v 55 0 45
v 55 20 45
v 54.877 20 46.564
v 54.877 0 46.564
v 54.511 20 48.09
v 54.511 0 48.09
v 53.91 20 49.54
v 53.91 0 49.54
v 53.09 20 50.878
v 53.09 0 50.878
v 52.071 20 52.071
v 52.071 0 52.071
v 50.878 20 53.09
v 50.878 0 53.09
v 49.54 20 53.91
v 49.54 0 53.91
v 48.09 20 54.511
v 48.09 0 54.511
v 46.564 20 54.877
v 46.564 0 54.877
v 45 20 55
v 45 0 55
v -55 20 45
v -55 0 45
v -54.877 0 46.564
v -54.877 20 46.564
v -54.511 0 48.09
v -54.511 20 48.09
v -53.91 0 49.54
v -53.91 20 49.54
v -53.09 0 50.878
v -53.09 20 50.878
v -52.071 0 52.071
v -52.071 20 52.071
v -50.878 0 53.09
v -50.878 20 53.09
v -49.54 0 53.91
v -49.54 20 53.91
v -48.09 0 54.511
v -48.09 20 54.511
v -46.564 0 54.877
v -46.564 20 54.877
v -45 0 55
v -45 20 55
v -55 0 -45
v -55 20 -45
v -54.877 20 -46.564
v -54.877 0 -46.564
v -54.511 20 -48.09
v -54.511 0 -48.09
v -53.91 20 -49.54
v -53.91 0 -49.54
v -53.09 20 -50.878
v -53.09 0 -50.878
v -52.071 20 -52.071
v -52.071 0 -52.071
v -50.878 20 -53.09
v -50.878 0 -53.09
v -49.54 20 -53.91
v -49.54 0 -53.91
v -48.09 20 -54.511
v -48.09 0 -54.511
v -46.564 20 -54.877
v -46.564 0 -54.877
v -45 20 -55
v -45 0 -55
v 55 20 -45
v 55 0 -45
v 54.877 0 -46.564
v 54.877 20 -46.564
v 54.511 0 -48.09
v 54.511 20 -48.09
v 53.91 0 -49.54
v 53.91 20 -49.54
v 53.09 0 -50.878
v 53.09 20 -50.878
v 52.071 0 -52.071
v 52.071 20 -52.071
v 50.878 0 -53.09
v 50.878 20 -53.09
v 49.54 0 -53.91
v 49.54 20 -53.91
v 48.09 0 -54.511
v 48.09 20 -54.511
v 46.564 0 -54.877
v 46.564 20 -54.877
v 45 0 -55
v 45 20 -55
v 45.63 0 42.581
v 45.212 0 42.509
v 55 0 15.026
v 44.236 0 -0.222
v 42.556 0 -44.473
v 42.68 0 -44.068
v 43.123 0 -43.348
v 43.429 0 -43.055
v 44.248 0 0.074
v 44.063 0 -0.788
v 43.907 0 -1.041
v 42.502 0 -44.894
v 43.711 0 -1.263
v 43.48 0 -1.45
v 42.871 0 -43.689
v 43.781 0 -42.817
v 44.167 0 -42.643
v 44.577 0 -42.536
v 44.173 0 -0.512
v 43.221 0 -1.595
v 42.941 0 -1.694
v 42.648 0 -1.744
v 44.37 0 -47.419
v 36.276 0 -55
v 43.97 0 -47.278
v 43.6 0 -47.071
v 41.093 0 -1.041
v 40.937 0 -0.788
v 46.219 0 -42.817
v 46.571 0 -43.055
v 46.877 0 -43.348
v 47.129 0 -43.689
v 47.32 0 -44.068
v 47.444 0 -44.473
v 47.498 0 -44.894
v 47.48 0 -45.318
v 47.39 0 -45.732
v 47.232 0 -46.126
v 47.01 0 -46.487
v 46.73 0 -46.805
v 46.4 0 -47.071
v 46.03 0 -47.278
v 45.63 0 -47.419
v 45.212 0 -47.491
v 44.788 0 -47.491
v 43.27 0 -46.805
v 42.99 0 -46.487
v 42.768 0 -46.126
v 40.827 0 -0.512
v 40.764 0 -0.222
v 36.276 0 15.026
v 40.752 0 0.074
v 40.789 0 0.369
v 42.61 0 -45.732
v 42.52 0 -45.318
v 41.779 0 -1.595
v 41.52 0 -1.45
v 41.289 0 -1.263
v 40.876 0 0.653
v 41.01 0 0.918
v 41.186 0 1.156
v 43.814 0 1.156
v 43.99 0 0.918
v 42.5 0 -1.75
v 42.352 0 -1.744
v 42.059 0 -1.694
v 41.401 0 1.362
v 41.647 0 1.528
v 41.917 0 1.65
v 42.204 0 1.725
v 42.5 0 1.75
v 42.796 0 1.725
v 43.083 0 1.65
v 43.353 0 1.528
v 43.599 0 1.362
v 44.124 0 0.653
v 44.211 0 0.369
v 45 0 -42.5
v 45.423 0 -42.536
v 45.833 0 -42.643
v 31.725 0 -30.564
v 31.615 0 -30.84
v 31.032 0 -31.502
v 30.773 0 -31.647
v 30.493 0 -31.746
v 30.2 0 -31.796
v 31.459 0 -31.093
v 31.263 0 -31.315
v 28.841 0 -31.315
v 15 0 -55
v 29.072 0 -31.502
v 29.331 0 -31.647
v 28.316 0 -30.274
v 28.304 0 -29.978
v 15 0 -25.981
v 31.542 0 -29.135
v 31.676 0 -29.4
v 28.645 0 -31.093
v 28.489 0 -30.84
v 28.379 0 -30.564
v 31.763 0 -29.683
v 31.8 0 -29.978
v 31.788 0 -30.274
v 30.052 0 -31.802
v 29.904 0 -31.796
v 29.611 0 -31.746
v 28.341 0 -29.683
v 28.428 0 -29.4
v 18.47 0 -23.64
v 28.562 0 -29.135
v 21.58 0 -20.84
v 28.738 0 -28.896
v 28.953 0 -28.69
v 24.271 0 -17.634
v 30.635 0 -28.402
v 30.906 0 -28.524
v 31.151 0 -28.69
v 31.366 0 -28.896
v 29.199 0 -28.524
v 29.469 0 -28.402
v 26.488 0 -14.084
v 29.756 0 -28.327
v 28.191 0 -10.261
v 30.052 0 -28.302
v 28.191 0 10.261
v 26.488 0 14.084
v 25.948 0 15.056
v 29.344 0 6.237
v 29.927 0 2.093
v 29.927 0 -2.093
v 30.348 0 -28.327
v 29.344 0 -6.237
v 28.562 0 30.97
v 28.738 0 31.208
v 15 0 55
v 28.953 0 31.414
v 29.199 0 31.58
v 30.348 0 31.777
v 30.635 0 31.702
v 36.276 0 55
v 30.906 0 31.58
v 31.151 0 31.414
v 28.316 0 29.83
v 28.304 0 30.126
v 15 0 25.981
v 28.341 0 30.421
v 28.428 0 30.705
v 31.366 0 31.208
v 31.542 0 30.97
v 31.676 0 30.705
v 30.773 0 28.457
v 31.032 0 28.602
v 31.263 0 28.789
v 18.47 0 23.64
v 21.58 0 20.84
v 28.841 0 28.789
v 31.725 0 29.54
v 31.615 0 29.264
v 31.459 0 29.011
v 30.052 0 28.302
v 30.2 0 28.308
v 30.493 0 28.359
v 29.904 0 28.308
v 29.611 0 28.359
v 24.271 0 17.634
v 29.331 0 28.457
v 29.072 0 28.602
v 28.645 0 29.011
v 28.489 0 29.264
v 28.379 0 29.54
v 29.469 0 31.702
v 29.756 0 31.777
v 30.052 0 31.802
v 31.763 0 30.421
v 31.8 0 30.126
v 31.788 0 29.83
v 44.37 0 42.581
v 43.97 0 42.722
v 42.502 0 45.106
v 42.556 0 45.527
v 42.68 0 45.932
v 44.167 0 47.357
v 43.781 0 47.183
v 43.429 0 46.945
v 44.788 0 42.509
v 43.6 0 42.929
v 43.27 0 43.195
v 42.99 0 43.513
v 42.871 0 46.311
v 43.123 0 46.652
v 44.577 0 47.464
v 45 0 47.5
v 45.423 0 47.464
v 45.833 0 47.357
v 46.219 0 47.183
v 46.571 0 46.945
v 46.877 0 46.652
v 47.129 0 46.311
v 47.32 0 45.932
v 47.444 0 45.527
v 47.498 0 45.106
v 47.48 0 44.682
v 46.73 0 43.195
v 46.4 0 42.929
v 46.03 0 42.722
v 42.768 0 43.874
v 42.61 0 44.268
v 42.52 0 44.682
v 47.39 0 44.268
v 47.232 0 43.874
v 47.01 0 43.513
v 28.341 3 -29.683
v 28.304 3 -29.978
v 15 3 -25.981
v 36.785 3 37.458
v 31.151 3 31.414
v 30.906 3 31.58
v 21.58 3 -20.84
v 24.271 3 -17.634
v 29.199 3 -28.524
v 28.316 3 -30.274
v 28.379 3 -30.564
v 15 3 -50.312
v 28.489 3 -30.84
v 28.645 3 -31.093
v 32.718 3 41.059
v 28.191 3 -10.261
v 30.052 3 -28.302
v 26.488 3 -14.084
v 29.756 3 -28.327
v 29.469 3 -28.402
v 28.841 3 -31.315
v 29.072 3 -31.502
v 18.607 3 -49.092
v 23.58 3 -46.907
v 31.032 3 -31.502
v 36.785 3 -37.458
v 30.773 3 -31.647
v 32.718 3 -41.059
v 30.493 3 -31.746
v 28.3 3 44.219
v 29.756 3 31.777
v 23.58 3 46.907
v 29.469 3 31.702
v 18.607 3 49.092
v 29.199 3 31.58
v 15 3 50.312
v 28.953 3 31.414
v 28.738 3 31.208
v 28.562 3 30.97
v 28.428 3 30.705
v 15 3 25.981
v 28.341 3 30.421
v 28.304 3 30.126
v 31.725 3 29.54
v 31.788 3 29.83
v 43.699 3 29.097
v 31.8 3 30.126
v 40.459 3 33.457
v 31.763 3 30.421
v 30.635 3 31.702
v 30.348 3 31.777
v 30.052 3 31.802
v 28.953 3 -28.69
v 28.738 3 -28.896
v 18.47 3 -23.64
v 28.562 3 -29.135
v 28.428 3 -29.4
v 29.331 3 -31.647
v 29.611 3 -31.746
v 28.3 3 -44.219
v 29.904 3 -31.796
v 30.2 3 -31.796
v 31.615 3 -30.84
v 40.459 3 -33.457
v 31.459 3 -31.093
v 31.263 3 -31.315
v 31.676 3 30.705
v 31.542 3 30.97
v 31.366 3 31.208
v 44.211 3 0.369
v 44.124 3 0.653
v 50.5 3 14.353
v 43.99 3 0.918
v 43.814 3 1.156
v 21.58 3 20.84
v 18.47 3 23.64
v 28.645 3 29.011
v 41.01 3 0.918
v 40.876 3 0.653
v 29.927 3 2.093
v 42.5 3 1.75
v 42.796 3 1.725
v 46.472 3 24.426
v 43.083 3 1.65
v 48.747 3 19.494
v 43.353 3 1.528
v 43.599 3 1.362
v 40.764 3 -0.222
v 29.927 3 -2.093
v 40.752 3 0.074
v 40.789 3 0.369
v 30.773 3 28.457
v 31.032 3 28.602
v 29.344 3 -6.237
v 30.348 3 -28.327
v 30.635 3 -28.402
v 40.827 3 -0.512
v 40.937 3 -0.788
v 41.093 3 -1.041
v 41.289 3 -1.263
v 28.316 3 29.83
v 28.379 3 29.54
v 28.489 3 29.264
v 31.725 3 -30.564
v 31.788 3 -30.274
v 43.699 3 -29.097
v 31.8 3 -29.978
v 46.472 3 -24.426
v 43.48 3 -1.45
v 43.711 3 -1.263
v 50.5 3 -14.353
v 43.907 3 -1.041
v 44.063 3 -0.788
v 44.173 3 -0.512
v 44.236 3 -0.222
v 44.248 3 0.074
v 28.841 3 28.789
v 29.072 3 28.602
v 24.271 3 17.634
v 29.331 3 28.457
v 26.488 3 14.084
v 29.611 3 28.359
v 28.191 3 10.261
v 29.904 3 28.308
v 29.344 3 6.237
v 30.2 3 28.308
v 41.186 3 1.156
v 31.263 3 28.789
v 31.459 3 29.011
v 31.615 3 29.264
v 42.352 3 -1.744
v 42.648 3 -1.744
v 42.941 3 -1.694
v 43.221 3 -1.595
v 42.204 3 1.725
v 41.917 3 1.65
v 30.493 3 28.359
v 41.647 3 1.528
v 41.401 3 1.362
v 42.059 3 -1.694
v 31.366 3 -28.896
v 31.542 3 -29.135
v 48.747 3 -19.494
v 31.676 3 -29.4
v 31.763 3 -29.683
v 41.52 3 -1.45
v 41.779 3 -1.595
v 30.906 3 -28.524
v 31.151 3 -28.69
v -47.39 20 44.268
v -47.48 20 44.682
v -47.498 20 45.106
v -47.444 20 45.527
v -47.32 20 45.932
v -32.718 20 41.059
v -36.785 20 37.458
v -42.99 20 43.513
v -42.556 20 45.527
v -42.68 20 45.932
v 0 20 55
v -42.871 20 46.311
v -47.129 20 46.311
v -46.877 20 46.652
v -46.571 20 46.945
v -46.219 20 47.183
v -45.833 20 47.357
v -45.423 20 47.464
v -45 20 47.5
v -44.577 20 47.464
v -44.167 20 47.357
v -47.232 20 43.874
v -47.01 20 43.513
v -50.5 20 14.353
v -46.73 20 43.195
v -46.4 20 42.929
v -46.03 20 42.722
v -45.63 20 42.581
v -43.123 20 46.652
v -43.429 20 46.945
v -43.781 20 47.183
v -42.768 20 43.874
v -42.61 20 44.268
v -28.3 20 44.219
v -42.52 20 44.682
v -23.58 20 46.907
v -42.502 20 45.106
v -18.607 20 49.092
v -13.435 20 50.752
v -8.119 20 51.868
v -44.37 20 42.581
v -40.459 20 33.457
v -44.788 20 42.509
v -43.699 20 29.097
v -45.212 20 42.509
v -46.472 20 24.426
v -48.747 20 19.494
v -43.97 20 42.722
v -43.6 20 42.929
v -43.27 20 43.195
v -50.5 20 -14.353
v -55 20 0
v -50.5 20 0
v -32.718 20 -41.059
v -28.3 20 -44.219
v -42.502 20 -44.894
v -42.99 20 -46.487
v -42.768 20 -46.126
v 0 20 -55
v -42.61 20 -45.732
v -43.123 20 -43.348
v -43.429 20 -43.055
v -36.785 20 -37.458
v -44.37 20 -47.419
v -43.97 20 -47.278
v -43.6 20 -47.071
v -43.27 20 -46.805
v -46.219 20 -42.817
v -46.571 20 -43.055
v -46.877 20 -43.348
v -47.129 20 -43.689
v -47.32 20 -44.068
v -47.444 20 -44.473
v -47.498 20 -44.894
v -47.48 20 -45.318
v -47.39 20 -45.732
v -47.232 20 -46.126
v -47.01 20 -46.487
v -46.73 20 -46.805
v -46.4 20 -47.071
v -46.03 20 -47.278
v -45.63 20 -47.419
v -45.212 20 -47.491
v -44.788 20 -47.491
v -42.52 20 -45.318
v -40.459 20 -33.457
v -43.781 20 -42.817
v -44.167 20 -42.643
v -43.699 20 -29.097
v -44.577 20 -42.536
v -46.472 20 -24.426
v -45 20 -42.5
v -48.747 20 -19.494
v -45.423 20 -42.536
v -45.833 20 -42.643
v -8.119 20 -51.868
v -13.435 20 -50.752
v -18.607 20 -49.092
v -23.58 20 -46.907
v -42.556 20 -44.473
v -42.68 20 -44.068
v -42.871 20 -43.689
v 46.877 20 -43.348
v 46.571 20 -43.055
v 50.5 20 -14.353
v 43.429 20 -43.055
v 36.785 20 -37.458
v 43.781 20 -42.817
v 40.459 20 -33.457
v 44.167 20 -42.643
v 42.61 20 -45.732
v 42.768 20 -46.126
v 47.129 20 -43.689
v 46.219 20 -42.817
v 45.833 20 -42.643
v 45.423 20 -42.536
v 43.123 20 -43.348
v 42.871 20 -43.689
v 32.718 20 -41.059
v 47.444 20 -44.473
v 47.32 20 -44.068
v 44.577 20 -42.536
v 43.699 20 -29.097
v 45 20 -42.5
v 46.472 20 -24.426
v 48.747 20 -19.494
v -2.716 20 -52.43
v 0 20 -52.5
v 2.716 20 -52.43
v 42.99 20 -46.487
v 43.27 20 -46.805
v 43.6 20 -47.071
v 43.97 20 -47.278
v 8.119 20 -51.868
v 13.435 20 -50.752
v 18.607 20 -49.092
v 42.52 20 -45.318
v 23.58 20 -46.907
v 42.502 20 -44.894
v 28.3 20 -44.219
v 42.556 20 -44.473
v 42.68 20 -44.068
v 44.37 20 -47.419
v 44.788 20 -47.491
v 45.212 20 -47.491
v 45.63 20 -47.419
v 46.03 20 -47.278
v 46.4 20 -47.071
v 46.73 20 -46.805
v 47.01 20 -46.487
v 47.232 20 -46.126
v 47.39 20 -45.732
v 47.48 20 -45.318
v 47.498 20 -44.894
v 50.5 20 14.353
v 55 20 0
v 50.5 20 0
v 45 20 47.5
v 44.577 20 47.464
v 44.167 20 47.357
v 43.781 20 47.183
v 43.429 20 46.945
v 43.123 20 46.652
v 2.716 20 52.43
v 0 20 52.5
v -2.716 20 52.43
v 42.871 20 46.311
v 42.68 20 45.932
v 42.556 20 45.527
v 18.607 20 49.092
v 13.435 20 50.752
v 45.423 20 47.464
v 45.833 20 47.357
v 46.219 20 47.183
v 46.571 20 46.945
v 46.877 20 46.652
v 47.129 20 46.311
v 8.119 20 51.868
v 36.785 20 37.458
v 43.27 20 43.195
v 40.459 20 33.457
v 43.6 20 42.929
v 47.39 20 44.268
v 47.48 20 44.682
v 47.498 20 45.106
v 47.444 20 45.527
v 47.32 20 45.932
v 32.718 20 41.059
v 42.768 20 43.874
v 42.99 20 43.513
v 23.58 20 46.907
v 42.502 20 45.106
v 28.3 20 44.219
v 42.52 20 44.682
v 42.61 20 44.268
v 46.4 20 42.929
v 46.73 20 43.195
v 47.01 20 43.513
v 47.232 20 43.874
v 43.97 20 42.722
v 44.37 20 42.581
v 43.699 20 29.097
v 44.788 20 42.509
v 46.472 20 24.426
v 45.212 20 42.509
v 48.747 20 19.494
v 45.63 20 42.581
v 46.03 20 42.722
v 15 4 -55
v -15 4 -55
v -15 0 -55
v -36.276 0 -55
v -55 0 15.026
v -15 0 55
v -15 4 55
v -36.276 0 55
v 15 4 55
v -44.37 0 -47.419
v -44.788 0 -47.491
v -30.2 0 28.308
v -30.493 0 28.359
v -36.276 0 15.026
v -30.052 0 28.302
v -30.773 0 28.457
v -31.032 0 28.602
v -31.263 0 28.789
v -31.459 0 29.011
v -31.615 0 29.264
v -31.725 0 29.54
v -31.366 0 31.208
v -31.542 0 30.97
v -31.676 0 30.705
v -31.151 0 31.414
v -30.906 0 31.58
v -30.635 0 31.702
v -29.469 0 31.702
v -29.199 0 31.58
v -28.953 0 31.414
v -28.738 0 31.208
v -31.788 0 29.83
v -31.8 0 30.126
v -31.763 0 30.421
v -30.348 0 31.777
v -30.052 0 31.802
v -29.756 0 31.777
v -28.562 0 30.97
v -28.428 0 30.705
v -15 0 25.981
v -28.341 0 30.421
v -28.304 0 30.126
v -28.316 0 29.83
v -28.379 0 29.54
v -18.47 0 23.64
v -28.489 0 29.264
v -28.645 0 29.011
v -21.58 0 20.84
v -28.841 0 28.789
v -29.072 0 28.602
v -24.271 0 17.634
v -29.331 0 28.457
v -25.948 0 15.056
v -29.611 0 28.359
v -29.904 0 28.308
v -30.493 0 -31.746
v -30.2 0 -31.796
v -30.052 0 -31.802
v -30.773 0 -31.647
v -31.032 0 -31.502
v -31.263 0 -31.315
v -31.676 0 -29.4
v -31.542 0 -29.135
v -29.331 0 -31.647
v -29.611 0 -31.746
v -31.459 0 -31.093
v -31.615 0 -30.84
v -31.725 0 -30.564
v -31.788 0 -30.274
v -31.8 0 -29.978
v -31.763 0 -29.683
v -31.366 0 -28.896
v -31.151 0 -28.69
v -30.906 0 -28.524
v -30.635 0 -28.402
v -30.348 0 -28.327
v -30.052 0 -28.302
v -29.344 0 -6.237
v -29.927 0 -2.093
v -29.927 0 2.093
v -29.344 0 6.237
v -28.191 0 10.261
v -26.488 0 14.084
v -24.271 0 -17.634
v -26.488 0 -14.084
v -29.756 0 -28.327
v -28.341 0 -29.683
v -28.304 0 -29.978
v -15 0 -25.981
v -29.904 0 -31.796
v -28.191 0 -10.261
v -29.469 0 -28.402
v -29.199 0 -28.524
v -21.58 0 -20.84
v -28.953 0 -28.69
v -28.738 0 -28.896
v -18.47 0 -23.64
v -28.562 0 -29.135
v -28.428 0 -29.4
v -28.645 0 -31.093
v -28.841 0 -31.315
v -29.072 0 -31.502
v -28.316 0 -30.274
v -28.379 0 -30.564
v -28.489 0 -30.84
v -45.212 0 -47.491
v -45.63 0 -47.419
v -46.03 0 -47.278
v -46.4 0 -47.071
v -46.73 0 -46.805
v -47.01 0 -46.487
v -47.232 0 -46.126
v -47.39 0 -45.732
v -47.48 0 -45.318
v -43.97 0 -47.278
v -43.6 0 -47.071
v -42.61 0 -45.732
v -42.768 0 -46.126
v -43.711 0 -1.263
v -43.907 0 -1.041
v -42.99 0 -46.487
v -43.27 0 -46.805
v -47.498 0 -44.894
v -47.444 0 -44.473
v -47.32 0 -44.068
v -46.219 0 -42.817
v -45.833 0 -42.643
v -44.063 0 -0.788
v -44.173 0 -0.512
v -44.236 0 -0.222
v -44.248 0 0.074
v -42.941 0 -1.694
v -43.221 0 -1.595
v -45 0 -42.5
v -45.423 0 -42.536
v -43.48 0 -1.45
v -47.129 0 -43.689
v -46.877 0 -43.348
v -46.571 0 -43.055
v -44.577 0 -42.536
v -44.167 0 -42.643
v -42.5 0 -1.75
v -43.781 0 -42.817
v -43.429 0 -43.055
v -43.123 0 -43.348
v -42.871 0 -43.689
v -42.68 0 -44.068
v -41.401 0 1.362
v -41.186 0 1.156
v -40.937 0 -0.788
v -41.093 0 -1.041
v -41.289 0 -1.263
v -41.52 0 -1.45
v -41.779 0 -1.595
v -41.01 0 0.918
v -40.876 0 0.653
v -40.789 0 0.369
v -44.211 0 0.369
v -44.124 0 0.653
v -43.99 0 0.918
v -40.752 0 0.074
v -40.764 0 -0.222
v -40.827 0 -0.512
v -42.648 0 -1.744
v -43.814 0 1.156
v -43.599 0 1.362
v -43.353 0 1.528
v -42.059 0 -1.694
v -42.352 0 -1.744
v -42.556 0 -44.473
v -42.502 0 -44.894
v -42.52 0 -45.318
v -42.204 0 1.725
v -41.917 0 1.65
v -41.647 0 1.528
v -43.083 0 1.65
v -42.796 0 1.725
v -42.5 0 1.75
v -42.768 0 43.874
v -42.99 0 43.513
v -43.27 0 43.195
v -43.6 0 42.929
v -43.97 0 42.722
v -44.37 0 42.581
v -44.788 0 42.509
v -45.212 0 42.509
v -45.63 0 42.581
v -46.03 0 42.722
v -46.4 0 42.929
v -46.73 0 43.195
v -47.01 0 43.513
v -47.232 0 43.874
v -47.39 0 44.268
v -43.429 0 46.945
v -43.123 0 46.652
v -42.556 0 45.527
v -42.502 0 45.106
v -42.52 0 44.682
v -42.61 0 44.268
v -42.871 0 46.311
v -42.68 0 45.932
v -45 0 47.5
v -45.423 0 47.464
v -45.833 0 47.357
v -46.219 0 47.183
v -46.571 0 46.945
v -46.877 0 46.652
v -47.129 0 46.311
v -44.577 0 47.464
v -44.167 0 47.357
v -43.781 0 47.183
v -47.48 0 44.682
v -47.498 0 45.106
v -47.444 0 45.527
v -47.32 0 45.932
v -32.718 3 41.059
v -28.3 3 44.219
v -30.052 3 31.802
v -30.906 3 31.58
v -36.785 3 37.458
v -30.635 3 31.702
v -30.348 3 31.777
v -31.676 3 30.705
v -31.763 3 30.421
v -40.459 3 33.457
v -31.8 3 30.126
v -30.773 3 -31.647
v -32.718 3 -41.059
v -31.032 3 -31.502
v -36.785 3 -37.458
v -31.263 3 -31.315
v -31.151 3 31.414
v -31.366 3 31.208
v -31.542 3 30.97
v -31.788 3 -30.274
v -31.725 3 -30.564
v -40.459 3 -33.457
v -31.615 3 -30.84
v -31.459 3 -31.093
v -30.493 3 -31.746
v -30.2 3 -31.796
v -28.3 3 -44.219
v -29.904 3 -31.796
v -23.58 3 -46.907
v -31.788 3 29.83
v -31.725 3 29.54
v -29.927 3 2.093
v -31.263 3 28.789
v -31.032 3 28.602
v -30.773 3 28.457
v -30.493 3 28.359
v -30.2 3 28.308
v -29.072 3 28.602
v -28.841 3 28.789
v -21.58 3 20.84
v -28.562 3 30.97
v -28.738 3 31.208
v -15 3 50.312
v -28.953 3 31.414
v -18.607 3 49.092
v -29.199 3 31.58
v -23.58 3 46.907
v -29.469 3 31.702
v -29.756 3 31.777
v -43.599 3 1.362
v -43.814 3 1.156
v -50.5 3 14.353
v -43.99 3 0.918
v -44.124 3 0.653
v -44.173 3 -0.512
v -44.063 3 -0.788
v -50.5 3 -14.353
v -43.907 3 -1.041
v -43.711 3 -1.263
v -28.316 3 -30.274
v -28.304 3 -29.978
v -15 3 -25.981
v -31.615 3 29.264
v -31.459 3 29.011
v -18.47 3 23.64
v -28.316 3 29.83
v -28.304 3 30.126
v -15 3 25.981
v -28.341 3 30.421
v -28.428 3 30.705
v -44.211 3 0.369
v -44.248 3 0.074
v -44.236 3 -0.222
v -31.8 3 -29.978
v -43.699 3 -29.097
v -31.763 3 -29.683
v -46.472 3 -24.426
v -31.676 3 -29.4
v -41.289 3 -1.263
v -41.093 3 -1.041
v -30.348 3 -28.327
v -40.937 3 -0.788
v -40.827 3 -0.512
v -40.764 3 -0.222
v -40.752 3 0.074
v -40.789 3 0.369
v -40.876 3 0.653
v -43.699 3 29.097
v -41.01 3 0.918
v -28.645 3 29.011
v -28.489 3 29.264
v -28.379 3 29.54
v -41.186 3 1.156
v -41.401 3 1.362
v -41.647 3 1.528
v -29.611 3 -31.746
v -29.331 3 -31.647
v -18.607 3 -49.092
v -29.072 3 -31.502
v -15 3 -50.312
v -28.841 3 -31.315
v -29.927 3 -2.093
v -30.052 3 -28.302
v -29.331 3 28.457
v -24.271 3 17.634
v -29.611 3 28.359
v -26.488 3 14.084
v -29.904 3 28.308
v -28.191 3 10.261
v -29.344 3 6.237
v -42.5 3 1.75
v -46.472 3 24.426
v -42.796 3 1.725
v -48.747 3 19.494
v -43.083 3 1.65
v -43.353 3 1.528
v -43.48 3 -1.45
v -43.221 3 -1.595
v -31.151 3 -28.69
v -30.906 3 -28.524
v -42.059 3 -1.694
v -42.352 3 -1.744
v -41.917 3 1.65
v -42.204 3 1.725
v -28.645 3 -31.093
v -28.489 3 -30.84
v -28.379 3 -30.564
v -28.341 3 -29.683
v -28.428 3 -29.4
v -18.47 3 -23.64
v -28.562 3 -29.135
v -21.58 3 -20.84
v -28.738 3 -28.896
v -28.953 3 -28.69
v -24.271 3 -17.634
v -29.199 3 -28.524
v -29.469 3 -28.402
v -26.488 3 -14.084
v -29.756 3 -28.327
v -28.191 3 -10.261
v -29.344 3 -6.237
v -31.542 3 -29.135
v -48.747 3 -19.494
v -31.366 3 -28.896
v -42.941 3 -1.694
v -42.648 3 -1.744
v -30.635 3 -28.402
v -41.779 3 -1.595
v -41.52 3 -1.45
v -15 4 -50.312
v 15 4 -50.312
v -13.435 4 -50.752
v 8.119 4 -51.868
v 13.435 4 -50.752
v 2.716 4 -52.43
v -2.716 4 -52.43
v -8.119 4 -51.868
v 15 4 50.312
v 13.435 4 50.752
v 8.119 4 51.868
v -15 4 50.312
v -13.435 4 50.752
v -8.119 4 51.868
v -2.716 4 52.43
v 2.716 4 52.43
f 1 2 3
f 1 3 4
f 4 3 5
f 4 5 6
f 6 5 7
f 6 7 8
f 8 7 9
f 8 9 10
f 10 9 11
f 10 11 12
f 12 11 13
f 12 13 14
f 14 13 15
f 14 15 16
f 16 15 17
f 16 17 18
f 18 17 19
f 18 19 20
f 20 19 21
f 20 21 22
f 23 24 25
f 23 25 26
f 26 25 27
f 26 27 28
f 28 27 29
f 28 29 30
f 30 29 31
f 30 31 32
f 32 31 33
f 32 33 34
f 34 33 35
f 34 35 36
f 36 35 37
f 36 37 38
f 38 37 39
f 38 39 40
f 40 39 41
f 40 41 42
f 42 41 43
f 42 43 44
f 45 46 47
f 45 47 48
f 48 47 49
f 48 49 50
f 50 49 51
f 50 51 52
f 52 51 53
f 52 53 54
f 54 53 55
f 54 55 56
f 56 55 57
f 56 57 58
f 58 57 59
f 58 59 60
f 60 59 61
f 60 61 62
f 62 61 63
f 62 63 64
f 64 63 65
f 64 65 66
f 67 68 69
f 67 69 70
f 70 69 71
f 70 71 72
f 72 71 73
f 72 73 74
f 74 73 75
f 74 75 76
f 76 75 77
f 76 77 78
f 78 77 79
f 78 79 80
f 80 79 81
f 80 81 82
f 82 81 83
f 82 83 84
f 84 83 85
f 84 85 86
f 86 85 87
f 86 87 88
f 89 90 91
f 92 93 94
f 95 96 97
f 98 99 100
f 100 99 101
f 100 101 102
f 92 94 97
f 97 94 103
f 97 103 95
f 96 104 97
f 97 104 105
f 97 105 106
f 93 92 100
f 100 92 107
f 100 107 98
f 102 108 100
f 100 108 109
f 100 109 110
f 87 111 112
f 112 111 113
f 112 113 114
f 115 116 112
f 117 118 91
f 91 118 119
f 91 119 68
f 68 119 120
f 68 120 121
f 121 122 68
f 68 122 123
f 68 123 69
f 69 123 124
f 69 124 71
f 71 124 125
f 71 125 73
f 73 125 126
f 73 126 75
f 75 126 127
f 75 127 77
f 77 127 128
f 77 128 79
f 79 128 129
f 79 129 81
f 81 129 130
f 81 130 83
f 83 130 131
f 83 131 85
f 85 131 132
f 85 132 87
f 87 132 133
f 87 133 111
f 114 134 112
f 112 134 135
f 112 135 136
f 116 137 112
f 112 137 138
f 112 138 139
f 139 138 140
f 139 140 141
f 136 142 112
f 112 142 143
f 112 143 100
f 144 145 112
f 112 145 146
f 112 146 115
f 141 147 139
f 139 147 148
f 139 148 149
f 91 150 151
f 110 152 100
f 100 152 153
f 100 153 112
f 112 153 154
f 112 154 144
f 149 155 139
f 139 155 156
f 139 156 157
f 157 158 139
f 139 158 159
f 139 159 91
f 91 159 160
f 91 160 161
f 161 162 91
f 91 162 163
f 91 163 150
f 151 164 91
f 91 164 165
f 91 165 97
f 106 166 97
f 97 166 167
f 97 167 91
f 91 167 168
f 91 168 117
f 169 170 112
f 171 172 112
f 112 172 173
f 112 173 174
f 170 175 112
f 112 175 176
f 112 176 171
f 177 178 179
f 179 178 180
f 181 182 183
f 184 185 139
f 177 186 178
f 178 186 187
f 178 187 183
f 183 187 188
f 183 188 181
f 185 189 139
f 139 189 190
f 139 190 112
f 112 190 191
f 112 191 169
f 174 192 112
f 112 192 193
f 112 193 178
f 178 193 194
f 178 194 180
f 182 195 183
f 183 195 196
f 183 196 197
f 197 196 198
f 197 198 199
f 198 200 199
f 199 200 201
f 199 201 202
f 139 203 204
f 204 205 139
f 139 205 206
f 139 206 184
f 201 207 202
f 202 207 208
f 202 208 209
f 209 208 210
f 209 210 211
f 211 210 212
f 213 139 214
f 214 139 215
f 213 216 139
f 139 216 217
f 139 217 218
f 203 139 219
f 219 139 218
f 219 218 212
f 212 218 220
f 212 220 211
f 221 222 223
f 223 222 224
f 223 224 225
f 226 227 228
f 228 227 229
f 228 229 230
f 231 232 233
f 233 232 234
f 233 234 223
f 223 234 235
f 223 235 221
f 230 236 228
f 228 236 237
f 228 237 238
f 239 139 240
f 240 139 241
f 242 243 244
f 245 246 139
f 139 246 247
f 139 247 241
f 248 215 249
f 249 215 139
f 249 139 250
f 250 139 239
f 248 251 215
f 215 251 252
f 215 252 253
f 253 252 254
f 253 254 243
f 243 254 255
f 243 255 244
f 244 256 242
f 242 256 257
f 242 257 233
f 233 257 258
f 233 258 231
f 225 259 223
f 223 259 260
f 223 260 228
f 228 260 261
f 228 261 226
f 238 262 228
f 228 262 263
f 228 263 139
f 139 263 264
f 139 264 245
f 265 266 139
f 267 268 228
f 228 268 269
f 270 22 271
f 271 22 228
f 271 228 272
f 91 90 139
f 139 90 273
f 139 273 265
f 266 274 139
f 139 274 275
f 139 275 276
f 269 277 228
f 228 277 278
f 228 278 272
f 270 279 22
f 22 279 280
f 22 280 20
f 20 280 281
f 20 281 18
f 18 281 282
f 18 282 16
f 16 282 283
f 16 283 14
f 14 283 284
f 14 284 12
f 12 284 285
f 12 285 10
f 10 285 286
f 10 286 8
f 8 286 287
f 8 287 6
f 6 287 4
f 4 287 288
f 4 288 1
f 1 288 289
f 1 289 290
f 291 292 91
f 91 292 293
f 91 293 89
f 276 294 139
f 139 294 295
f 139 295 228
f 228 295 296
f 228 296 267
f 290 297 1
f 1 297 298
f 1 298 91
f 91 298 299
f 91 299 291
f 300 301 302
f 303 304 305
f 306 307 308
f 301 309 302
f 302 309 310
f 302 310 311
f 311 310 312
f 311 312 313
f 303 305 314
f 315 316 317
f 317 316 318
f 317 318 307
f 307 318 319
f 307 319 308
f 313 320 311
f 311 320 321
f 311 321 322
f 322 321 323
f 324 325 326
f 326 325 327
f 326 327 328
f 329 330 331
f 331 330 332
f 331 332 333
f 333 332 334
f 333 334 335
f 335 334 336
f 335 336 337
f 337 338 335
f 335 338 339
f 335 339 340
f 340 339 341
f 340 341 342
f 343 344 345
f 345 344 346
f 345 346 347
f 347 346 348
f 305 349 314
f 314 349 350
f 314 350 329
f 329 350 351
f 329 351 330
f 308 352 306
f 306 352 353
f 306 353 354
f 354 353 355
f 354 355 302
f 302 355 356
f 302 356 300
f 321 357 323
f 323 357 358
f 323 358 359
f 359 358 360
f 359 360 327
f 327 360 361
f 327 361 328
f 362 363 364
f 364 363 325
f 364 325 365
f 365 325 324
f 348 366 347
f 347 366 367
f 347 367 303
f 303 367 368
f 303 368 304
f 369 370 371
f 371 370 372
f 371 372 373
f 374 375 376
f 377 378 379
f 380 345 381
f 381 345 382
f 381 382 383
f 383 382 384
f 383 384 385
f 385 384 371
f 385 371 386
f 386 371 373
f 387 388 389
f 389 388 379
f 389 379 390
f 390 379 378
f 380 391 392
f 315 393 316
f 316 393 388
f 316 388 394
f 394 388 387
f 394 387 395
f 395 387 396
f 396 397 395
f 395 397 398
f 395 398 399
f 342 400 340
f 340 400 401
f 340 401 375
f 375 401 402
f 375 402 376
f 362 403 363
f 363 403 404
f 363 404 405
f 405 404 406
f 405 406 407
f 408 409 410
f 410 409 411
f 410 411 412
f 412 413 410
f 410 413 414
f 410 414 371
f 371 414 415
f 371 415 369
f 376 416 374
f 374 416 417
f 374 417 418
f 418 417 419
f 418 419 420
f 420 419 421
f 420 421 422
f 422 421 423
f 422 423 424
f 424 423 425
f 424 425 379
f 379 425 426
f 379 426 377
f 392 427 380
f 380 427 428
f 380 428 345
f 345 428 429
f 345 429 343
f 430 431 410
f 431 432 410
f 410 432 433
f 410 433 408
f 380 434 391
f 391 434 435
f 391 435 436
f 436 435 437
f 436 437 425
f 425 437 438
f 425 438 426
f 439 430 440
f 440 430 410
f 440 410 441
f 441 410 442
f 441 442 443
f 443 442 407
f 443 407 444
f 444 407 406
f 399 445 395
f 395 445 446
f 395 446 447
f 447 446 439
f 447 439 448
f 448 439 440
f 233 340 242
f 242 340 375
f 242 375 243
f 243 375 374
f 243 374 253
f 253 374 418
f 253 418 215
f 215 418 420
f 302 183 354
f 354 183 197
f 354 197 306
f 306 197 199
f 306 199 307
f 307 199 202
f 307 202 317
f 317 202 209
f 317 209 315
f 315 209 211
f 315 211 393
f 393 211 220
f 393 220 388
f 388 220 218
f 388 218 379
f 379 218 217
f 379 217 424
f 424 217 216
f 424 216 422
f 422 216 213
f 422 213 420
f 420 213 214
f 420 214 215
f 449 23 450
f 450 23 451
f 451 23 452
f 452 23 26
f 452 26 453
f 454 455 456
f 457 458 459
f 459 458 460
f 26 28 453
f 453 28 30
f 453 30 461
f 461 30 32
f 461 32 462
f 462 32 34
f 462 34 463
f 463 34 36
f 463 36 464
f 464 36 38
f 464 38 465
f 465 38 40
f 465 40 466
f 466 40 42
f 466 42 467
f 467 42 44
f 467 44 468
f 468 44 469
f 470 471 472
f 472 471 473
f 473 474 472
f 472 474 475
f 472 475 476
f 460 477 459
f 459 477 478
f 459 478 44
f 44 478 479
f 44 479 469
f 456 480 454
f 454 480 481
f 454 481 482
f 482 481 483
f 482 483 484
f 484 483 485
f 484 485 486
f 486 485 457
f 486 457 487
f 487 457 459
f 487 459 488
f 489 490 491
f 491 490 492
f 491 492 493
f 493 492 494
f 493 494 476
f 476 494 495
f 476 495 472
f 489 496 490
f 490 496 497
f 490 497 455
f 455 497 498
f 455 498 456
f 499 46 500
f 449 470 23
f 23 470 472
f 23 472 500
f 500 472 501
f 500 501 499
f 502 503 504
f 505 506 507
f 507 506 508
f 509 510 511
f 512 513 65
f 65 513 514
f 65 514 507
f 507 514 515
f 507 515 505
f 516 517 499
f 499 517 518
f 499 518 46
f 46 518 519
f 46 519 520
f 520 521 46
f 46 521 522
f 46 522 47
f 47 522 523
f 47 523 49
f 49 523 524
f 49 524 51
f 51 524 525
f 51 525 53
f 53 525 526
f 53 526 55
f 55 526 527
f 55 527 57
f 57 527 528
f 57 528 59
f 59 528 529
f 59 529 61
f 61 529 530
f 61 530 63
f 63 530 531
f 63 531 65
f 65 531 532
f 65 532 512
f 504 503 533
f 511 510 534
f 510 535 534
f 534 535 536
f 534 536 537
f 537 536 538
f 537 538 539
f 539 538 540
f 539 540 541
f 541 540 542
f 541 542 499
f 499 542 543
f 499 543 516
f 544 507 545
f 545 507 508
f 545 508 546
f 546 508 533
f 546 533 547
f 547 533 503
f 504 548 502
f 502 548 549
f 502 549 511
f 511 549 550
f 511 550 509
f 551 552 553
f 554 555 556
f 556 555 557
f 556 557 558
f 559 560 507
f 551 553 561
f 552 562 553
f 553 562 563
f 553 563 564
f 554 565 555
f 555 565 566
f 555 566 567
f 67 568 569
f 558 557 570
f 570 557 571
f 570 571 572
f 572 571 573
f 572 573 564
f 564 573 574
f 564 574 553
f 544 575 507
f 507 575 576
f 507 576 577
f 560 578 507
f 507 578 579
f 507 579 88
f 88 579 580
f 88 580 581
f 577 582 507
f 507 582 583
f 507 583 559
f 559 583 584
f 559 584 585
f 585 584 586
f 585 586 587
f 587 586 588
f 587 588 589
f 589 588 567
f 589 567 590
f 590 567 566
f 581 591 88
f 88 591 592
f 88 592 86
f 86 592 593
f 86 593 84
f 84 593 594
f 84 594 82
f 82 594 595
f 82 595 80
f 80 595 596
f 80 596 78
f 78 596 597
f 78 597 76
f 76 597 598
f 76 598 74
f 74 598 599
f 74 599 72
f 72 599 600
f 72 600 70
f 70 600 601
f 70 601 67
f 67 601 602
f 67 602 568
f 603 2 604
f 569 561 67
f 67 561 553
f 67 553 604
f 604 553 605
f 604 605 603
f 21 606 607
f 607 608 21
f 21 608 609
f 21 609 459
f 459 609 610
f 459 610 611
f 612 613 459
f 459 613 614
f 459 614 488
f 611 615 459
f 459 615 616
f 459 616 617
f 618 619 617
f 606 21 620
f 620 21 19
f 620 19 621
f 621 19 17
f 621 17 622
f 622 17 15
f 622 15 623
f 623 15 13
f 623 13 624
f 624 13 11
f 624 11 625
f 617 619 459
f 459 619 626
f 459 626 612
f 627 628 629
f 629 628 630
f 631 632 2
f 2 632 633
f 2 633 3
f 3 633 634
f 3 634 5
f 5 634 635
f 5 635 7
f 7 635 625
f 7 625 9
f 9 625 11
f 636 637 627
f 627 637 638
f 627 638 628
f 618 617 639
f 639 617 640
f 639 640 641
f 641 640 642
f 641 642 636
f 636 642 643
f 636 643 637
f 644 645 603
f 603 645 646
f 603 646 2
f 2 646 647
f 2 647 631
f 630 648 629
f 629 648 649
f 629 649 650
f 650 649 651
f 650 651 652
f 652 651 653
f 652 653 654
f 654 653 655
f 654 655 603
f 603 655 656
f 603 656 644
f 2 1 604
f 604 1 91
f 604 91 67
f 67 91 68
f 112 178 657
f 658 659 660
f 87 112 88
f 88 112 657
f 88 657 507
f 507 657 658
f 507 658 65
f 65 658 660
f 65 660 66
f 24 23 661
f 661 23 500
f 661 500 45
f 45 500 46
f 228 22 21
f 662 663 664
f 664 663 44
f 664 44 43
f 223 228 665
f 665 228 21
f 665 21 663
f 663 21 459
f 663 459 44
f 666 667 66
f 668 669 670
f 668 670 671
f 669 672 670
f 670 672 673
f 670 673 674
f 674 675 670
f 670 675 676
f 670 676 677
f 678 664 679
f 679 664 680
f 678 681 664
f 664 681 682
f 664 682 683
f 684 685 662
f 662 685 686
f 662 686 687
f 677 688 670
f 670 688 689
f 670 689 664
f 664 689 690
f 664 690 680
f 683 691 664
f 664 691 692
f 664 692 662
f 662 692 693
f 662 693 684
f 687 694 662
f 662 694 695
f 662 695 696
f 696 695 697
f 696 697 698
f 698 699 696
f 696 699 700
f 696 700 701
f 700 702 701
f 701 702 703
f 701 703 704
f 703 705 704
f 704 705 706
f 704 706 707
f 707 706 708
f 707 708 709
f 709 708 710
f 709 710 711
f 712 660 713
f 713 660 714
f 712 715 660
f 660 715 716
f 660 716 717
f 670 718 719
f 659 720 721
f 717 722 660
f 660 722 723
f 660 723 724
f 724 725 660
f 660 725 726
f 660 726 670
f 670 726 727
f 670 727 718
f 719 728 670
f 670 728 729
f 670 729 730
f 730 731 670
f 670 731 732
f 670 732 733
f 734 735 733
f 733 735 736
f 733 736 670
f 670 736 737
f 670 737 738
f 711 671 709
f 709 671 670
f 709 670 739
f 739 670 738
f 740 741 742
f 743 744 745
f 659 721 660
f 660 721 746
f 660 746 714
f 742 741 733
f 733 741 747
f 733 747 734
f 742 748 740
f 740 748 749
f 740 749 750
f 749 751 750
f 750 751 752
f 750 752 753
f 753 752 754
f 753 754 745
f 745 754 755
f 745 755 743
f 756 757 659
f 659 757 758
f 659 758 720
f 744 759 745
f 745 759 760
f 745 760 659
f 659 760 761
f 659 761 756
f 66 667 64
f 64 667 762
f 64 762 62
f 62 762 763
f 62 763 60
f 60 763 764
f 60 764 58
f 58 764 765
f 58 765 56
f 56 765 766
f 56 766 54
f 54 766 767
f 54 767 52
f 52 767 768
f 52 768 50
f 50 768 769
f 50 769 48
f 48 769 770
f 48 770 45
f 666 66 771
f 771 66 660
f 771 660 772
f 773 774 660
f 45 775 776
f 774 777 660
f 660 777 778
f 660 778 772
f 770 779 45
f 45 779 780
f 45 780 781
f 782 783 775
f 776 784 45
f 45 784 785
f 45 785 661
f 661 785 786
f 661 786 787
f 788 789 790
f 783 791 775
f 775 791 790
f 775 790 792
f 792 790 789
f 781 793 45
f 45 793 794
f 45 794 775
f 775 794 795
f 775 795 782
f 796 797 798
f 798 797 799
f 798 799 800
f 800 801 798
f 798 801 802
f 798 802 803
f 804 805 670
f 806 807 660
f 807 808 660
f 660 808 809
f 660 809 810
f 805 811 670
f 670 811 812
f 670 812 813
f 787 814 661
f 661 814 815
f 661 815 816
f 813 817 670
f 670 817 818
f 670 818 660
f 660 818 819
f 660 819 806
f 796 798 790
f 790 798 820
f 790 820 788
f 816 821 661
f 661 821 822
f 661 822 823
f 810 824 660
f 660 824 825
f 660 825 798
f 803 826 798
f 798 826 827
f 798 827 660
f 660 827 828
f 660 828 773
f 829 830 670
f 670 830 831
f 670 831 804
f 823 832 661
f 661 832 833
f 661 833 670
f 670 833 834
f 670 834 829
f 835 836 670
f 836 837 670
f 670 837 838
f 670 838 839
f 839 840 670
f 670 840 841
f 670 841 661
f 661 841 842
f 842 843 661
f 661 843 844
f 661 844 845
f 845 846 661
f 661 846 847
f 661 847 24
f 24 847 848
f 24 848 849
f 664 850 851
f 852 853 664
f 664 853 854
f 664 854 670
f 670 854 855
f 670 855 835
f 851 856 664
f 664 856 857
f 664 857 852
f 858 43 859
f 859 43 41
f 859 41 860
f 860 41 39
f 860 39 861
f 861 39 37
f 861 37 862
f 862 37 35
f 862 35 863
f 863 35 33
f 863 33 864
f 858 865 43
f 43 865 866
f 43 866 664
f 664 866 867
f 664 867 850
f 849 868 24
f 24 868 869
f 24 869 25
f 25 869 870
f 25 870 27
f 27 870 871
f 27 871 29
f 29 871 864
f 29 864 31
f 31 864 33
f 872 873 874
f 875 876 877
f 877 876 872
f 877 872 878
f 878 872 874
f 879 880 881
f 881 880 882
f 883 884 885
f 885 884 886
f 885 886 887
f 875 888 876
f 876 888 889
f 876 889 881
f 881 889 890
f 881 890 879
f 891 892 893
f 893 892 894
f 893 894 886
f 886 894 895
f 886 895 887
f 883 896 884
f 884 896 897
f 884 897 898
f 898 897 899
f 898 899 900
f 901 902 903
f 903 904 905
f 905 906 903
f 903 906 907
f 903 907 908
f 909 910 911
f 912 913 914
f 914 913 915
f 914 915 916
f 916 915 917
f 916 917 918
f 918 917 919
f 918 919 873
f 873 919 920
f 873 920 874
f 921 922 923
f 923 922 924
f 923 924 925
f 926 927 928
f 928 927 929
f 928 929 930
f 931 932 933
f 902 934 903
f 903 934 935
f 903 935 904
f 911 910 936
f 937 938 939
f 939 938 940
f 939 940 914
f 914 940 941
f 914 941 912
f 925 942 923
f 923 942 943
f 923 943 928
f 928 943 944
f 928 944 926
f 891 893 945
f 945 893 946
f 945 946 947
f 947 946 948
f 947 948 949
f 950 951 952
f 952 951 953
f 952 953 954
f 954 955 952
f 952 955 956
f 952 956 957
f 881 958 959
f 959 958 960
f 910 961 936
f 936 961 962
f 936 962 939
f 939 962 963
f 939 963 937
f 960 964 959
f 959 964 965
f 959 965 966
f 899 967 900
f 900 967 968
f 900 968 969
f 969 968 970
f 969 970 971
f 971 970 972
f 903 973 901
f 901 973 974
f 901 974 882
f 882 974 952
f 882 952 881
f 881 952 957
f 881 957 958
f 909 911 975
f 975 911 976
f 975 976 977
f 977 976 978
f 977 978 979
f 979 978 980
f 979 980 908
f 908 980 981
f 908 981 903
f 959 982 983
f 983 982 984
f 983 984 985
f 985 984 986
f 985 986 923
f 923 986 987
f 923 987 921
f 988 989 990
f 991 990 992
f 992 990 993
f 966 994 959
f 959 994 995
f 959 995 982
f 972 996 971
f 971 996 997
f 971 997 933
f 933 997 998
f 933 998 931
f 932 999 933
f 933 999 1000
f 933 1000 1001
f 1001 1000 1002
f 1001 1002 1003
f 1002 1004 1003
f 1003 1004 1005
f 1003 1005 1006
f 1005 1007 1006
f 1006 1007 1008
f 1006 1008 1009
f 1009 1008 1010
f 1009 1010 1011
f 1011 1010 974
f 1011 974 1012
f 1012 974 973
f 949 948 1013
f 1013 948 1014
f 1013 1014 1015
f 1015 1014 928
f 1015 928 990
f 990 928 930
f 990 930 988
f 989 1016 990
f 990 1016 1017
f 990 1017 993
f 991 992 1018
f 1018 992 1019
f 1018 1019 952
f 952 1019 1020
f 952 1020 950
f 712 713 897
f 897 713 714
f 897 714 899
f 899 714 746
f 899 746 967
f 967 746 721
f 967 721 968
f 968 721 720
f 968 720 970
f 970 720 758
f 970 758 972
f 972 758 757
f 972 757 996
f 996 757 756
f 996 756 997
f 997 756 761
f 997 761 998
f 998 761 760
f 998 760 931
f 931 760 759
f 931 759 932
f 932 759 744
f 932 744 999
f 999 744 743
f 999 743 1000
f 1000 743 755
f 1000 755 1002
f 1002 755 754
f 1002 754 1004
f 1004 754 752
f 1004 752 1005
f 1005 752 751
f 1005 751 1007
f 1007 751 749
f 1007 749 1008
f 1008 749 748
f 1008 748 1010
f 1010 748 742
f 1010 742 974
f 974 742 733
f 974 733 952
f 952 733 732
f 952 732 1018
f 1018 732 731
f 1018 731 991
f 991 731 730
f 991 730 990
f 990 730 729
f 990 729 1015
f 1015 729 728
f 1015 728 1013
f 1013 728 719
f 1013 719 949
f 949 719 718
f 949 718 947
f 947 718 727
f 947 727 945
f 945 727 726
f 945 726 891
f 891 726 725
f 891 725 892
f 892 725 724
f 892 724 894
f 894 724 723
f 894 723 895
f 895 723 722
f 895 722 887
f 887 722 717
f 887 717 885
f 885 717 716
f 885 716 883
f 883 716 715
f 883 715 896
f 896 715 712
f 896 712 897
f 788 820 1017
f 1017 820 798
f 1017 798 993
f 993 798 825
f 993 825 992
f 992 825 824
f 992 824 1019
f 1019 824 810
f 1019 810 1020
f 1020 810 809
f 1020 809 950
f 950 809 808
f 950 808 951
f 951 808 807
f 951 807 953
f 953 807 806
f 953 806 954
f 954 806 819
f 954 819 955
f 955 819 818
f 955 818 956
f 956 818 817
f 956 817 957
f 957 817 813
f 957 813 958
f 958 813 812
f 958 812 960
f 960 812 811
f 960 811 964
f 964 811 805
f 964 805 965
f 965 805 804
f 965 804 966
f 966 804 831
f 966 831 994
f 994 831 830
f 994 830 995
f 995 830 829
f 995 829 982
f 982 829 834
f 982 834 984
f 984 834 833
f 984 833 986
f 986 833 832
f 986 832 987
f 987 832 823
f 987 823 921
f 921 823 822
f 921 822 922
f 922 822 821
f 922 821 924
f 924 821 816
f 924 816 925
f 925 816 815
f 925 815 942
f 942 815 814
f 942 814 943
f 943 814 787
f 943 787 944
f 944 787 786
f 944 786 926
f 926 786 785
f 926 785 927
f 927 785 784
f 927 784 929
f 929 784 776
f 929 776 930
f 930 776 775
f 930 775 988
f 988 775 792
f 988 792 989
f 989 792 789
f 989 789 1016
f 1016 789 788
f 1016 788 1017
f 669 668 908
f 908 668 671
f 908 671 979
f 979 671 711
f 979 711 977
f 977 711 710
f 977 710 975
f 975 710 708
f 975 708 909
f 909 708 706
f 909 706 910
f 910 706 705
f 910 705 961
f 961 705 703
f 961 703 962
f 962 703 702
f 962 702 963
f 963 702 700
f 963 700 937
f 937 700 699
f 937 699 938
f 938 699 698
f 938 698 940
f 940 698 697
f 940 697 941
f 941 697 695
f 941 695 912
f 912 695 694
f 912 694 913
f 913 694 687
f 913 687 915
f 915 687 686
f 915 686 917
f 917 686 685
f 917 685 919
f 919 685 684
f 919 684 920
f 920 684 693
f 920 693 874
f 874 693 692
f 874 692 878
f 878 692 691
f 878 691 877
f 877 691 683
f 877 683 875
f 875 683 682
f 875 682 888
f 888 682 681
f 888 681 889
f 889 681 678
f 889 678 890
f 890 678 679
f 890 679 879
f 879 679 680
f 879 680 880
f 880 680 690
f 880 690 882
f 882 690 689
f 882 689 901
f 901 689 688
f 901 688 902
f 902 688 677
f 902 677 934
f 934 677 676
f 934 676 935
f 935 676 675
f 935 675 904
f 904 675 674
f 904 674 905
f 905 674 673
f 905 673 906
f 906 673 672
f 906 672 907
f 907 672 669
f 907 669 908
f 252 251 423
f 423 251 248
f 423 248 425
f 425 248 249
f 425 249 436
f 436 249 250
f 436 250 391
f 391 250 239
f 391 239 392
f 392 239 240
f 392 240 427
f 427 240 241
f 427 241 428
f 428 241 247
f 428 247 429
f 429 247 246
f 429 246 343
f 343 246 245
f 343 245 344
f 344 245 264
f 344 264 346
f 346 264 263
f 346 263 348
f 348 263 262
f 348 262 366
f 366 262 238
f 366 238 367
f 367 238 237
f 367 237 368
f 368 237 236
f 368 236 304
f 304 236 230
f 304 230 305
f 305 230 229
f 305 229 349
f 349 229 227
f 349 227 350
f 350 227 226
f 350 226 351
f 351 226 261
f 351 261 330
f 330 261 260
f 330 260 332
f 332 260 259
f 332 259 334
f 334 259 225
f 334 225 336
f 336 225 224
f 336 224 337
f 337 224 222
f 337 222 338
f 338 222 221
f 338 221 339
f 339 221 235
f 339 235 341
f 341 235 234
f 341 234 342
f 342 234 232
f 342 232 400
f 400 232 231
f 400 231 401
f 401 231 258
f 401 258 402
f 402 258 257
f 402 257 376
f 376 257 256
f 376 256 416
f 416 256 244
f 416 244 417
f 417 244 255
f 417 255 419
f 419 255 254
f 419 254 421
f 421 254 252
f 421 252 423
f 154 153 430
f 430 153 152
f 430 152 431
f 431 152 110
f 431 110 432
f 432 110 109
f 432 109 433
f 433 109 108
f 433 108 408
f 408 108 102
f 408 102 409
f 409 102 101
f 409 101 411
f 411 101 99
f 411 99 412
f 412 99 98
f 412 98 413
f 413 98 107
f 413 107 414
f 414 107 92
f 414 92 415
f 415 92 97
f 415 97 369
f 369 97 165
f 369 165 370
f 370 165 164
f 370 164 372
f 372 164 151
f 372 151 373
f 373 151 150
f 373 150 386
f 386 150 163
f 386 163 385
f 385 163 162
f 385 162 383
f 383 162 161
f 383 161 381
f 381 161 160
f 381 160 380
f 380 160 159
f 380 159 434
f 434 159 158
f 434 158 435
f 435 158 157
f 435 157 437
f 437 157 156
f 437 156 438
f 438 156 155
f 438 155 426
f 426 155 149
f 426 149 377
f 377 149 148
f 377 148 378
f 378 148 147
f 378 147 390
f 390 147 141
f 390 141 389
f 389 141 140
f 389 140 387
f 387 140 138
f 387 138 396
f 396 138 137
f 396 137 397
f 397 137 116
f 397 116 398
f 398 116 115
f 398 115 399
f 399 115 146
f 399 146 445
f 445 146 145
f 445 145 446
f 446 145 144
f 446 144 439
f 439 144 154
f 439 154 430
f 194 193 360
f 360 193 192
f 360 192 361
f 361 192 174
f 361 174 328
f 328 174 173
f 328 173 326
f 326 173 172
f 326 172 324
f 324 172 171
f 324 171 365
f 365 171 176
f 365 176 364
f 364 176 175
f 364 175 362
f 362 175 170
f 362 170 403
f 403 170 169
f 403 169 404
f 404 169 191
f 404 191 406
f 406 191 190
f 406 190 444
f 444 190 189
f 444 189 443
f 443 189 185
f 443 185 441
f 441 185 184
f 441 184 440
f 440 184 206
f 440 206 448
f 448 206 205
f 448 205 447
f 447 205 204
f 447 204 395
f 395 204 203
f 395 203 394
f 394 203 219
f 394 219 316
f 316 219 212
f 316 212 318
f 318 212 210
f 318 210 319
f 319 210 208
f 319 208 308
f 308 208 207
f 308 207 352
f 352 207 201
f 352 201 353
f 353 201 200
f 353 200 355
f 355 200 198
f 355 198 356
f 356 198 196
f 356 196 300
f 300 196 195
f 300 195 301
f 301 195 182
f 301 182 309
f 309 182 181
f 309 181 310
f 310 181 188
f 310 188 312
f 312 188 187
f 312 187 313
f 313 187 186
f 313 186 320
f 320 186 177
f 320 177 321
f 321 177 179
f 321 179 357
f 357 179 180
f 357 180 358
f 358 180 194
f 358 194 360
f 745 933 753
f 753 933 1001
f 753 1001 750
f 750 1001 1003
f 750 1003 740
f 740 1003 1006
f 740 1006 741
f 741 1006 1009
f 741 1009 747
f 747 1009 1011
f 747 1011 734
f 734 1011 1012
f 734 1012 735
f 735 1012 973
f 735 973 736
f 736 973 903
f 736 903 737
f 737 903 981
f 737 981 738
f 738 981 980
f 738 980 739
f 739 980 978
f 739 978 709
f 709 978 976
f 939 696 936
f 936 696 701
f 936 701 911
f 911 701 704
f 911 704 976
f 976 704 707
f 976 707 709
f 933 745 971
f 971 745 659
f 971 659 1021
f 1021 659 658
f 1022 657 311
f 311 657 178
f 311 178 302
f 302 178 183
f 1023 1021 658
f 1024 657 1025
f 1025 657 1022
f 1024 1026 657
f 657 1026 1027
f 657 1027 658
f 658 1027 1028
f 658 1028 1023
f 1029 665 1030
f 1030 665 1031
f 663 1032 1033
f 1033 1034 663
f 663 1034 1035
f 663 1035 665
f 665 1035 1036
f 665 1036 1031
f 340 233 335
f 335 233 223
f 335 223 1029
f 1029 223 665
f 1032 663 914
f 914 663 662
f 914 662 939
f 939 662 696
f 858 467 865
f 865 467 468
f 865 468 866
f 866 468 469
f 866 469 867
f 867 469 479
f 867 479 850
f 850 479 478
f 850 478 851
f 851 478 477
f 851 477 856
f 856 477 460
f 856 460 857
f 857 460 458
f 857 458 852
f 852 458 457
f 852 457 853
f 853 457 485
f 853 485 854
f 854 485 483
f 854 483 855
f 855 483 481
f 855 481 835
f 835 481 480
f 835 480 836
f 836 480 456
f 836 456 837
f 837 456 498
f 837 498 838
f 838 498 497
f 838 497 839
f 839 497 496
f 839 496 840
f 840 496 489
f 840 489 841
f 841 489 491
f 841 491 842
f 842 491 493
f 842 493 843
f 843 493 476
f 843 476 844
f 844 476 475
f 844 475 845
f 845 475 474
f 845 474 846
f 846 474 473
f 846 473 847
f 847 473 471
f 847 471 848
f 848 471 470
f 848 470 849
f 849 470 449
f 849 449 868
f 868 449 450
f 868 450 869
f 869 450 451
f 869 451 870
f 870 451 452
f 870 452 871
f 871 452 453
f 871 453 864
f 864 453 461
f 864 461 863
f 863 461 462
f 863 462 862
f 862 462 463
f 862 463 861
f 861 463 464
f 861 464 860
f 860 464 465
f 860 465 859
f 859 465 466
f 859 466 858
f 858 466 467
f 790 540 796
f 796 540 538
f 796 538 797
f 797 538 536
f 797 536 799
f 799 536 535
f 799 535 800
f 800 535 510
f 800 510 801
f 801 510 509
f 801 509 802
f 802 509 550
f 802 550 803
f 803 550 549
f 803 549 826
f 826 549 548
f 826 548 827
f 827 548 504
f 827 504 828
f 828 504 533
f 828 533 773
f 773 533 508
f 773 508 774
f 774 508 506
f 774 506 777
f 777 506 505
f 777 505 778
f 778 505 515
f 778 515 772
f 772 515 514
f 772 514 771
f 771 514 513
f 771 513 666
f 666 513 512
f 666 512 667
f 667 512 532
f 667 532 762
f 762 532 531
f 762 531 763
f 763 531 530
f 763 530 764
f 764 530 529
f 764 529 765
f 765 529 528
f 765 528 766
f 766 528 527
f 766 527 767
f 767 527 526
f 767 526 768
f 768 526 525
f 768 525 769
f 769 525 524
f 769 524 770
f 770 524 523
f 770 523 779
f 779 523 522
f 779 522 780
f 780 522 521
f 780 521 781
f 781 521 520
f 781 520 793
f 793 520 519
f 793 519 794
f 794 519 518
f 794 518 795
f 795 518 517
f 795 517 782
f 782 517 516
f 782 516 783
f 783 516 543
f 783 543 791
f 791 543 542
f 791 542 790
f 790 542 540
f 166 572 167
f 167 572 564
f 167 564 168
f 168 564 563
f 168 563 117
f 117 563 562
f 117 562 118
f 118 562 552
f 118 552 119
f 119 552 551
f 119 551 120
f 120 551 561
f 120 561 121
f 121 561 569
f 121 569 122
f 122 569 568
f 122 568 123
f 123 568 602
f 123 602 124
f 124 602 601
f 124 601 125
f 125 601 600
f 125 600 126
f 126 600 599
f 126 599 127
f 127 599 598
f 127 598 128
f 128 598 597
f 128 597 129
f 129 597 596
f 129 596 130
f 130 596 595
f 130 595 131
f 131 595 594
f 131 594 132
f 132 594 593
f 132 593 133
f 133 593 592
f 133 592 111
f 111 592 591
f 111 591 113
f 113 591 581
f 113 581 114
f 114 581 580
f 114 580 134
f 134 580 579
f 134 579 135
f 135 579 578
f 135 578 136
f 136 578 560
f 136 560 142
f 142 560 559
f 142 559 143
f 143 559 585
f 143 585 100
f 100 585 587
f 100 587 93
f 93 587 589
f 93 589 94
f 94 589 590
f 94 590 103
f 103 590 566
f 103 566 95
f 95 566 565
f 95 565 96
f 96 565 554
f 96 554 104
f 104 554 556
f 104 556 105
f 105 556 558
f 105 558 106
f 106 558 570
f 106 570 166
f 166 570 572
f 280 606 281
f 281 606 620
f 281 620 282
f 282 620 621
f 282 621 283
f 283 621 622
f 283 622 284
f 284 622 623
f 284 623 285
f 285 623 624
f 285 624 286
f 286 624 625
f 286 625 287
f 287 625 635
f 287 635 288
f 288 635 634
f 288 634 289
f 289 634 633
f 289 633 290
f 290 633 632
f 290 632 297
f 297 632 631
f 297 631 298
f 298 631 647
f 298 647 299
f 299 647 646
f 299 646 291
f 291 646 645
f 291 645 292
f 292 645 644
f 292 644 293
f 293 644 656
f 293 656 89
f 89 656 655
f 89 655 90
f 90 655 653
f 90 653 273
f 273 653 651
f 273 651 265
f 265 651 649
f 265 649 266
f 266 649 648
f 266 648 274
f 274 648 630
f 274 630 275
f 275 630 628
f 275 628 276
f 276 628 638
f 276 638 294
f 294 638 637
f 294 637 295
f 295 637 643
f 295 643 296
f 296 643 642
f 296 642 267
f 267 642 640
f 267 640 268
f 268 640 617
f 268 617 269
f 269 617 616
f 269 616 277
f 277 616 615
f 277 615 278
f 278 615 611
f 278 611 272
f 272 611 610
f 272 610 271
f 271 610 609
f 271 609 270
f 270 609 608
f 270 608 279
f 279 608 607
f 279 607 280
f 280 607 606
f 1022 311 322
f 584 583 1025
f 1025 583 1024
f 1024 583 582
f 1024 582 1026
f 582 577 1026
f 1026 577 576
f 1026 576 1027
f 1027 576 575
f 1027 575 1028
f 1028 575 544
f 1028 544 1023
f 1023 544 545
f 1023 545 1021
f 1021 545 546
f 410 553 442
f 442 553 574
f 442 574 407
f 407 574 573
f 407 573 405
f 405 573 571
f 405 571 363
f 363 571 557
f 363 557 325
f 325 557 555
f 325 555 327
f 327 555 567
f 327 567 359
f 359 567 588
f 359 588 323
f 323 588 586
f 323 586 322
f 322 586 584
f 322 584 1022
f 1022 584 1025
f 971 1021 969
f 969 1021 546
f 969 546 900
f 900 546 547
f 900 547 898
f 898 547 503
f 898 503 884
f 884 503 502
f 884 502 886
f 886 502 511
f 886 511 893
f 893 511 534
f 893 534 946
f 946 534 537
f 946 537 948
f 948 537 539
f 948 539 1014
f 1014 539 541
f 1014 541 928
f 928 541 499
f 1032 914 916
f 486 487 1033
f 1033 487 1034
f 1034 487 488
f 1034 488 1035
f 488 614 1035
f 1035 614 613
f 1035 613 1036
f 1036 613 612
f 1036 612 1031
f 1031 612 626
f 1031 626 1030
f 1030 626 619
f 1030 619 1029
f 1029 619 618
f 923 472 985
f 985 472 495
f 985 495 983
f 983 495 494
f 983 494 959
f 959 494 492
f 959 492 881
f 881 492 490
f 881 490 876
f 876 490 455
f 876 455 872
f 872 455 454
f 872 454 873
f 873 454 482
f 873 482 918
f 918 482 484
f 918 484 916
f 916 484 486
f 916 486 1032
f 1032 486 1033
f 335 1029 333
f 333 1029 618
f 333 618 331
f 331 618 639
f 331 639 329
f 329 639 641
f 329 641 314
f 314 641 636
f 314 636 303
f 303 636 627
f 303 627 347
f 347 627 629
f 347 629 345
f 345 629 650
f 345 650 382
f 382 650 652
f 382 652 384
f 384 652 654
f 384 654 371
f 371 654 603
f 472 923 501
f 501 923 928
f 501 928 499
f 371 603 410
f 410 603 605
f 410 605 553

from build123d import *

# Parameters (mm, degrees)
SKETCH_1_W          = 110
SKETCH_1_H          = 110
EXTRUDE_5_DEPTH     = 20
CUT_EXTRUDE_2_DEPTH = 17
SKETCH_5_R          = 1.75
SKETCH_5_R_2        = 30
CUT_EXTRUDE_3_DEPTH = 17
SKETCH_7_W          = 30
SKETCH_7_H          = 114.29986349
CUT_EXTRUDE_4_DEPTH = 4
SKETCH_8_R          = 2.5
CUT_EXTRUDE_5_DEPTH = 81.311892021
FILLET_1_R          = 10
FILLET_2_R          = 10
FILLET_3_R          = 10
FILLET_4_R          = 10
CUT_EXTRUDE_6_DEPTH = 17
CUT_EXTRUDE_7_DEPTH = 17


with BuildPart() as part:
    # 草图1 → 凸台-拉伸5 (new body)
    with BuildSketch(Plane(origin=(0, 0, 0), x_dir=(1, 0, 0), z_dir=(0, 1, 0))):
        Rectangle(SKETCH_1_W, SKETCH_1_H)
    extrude(amount=EXTRUDE_5_DEPTH)

    # 草图4 → 切除-拉伸2 (cut)
    with BuildSketch(Plane(origin=(0, 20, 0), x_dir=(1, 0, 0), z_dir=(0, 1, 0))):
        with BuildLine():
            ThreePointArc((-47, -13.856406461), (0, -49), (47, -13.856406461))
            Line((47, -13.856406461), (47, 13.856406461))
            ThreePointArc((47, 13.856406461), (0, 49), (-47, 13.856406461))
            Line((-47, 13.856406461), (-47, -13.856406461))
        make_face()
    extrude(amount=-CUT_EXTRUDE_2_DEPTH, mode=Mode.SUBTRACT)

    # 草图5 → 切除-拉伸3 (cut)
    with BuildSketch(Plane(origin=(0, 3, 0), x_dir=(1, 0, 0), z_dir=(0, 1, 0))):
        with Locations(Location((0, 42.5, 0), (0, 0, 270))):
            Circle(SKETCH_5_R)
        with Locations(Location((30.0520382, 30.0520382, 0), (0, 0, 270))):
            Circle(SKETCH_5_R)
        with Locations(Location((42.5, 0, 0), (0, 0, 270))):
            Circle(SKETCH_5_R)
        with Locations(Location((30.0520382, -30.0520382, 0), (0, 0, 270))):
            Circle(SKETCH_5_R)
        with Locations(Location((0, -42.5, 0), (0, 0, 270))):
            Circle(SKETCH_5_R)
        with Locations(Location((-30.0520382, -30.0520382, 0), (0, 0, 270))):
            Circle(SKETCH_5_R)
        with Locations(Location((-42.5, 0, 0), (0, 0, 270))):
            Circle(SKETCH_5_R)
        with Locations(Location((-30.0520382, 30.0520382, 0), (0, 0, 270))):
            Circle(SKETCH_5_R)
        with Locations(Location((0, 0, 0), (0, 0, 270))):
            Circle(SKETCH_5_R_2)
    extrude(amount=-CUT_EXTRUDE_3_DEPTH, mode=Mode.SUBTRACT)

    # 草图7 → 切除-拉伸4 (cut)
    with BuildSketch(Plane.XZ):
        Rectangle(SKETCH_7_W, SKETCH_7_H)
    extrude(amount=-CUT_EXTRUDE_4_DEPTH, mode=Mode.SUBTRACT)

    # 草图8 → 切除-拉伸5 (cut, through all)
    with BuildSketch(Plane(origin=(0, 20, 0), x_dir=(1, 0, 0), z_dir=(0, 1, 0))):
        with Locations(Location((45, 45, 0), (0, 0, 270))):
            Circle(SKETCH_8_R)
        with Locations(Location((45, -45, 0), (0, 0, 270))):
            Circle(SKETCH_8_R)
        with Locations(Location((-45, -45, 0), (0, 0, 270))):
            Circle(SKETCH_8_R)
        with Locations(Location((-45, 45, 0), (0, 0, 270))):
            Circle(SKETCH_8_R)
    extrude(amount=-CUT_EXTRUDE_5_DEPTH, mode=Mode.SUBTRACT)

    # 圆角1
    fillet_1_edges = [part.edges().sort_by_distance(p)[0] for p in [
        (55, 10, -55),
    ]]
    fillet(fillet_1_edges, radius=FILLET_1_R)

    # 圆角2
    fillet_2_edges = [part.edges().sort_by_distance(p)[0] for p in [
        (-55, 10, -55),
    ]]
    fillet(fillet_2_edges, radius=FILLET_2_R)

    # 圆角3
    fillet_3_edges = [part.edges().sort_by_distance(p)[0] for p in [
        (-55, 10, 55),
    ]]
    fillet(fillet_3_edges, radius=FILLET_3_R)

    # 圆角4
    fillet_4_edges = [part.edges().sort_by_distance(p)[0] for p in [
        (55, 10, 55),
    ]]
    fillet(fillet_4_edges, radius=FILLET_4_R)

    # 草图10 → 切除-拉伸6 (cut)
    with BuildSketch(Plane(origin=(0, 20, 0), x_dir=(1, 0, 0), z_dir=(0, 1, 0))):
        with BuildLine():
            Line((50, -14.282856857), (50, 14.282856857))
            ThreePointArc((50, 14.282856857), (0, 52), (-50, 14.282856857))
            Line((-50, 14.282856857), (-50, -14.282856857))
            ThreePointArc((-50, -14.282856857), (0, -52), (50, -14.282856857))
        make_face()
    extrude(amount=-CUT_EXTRUDE_6_DEPTH, mode=Mode.SUBTRACT)

    # 草图11 → 切除-拉伸7 (cut)
    with BuildSketch(Plane(origin=(0, 20, 0), x_dir=(1, 0, 0), z_dir=(0, 1, 0))):
        with BuildLine():
            Line((50.5, -14.352700094), (50.5, 14.352700094))
            ThreePointArc((50.5, 14.352700094), (0, 52.5), (-50.5, 14.352700094))
            Line((-50.5, 14.352700094), (-50.5, -14.352700094))
            ThreePointArc((-50.5, -14.352700094), (0, -52.5), (50.5, -14.352700094))
        make_face()
    extrude(amount=-CUT_EXTRUDE_7_DEPTH, mode=Mode.SUBTRACT)


solid = part.part
